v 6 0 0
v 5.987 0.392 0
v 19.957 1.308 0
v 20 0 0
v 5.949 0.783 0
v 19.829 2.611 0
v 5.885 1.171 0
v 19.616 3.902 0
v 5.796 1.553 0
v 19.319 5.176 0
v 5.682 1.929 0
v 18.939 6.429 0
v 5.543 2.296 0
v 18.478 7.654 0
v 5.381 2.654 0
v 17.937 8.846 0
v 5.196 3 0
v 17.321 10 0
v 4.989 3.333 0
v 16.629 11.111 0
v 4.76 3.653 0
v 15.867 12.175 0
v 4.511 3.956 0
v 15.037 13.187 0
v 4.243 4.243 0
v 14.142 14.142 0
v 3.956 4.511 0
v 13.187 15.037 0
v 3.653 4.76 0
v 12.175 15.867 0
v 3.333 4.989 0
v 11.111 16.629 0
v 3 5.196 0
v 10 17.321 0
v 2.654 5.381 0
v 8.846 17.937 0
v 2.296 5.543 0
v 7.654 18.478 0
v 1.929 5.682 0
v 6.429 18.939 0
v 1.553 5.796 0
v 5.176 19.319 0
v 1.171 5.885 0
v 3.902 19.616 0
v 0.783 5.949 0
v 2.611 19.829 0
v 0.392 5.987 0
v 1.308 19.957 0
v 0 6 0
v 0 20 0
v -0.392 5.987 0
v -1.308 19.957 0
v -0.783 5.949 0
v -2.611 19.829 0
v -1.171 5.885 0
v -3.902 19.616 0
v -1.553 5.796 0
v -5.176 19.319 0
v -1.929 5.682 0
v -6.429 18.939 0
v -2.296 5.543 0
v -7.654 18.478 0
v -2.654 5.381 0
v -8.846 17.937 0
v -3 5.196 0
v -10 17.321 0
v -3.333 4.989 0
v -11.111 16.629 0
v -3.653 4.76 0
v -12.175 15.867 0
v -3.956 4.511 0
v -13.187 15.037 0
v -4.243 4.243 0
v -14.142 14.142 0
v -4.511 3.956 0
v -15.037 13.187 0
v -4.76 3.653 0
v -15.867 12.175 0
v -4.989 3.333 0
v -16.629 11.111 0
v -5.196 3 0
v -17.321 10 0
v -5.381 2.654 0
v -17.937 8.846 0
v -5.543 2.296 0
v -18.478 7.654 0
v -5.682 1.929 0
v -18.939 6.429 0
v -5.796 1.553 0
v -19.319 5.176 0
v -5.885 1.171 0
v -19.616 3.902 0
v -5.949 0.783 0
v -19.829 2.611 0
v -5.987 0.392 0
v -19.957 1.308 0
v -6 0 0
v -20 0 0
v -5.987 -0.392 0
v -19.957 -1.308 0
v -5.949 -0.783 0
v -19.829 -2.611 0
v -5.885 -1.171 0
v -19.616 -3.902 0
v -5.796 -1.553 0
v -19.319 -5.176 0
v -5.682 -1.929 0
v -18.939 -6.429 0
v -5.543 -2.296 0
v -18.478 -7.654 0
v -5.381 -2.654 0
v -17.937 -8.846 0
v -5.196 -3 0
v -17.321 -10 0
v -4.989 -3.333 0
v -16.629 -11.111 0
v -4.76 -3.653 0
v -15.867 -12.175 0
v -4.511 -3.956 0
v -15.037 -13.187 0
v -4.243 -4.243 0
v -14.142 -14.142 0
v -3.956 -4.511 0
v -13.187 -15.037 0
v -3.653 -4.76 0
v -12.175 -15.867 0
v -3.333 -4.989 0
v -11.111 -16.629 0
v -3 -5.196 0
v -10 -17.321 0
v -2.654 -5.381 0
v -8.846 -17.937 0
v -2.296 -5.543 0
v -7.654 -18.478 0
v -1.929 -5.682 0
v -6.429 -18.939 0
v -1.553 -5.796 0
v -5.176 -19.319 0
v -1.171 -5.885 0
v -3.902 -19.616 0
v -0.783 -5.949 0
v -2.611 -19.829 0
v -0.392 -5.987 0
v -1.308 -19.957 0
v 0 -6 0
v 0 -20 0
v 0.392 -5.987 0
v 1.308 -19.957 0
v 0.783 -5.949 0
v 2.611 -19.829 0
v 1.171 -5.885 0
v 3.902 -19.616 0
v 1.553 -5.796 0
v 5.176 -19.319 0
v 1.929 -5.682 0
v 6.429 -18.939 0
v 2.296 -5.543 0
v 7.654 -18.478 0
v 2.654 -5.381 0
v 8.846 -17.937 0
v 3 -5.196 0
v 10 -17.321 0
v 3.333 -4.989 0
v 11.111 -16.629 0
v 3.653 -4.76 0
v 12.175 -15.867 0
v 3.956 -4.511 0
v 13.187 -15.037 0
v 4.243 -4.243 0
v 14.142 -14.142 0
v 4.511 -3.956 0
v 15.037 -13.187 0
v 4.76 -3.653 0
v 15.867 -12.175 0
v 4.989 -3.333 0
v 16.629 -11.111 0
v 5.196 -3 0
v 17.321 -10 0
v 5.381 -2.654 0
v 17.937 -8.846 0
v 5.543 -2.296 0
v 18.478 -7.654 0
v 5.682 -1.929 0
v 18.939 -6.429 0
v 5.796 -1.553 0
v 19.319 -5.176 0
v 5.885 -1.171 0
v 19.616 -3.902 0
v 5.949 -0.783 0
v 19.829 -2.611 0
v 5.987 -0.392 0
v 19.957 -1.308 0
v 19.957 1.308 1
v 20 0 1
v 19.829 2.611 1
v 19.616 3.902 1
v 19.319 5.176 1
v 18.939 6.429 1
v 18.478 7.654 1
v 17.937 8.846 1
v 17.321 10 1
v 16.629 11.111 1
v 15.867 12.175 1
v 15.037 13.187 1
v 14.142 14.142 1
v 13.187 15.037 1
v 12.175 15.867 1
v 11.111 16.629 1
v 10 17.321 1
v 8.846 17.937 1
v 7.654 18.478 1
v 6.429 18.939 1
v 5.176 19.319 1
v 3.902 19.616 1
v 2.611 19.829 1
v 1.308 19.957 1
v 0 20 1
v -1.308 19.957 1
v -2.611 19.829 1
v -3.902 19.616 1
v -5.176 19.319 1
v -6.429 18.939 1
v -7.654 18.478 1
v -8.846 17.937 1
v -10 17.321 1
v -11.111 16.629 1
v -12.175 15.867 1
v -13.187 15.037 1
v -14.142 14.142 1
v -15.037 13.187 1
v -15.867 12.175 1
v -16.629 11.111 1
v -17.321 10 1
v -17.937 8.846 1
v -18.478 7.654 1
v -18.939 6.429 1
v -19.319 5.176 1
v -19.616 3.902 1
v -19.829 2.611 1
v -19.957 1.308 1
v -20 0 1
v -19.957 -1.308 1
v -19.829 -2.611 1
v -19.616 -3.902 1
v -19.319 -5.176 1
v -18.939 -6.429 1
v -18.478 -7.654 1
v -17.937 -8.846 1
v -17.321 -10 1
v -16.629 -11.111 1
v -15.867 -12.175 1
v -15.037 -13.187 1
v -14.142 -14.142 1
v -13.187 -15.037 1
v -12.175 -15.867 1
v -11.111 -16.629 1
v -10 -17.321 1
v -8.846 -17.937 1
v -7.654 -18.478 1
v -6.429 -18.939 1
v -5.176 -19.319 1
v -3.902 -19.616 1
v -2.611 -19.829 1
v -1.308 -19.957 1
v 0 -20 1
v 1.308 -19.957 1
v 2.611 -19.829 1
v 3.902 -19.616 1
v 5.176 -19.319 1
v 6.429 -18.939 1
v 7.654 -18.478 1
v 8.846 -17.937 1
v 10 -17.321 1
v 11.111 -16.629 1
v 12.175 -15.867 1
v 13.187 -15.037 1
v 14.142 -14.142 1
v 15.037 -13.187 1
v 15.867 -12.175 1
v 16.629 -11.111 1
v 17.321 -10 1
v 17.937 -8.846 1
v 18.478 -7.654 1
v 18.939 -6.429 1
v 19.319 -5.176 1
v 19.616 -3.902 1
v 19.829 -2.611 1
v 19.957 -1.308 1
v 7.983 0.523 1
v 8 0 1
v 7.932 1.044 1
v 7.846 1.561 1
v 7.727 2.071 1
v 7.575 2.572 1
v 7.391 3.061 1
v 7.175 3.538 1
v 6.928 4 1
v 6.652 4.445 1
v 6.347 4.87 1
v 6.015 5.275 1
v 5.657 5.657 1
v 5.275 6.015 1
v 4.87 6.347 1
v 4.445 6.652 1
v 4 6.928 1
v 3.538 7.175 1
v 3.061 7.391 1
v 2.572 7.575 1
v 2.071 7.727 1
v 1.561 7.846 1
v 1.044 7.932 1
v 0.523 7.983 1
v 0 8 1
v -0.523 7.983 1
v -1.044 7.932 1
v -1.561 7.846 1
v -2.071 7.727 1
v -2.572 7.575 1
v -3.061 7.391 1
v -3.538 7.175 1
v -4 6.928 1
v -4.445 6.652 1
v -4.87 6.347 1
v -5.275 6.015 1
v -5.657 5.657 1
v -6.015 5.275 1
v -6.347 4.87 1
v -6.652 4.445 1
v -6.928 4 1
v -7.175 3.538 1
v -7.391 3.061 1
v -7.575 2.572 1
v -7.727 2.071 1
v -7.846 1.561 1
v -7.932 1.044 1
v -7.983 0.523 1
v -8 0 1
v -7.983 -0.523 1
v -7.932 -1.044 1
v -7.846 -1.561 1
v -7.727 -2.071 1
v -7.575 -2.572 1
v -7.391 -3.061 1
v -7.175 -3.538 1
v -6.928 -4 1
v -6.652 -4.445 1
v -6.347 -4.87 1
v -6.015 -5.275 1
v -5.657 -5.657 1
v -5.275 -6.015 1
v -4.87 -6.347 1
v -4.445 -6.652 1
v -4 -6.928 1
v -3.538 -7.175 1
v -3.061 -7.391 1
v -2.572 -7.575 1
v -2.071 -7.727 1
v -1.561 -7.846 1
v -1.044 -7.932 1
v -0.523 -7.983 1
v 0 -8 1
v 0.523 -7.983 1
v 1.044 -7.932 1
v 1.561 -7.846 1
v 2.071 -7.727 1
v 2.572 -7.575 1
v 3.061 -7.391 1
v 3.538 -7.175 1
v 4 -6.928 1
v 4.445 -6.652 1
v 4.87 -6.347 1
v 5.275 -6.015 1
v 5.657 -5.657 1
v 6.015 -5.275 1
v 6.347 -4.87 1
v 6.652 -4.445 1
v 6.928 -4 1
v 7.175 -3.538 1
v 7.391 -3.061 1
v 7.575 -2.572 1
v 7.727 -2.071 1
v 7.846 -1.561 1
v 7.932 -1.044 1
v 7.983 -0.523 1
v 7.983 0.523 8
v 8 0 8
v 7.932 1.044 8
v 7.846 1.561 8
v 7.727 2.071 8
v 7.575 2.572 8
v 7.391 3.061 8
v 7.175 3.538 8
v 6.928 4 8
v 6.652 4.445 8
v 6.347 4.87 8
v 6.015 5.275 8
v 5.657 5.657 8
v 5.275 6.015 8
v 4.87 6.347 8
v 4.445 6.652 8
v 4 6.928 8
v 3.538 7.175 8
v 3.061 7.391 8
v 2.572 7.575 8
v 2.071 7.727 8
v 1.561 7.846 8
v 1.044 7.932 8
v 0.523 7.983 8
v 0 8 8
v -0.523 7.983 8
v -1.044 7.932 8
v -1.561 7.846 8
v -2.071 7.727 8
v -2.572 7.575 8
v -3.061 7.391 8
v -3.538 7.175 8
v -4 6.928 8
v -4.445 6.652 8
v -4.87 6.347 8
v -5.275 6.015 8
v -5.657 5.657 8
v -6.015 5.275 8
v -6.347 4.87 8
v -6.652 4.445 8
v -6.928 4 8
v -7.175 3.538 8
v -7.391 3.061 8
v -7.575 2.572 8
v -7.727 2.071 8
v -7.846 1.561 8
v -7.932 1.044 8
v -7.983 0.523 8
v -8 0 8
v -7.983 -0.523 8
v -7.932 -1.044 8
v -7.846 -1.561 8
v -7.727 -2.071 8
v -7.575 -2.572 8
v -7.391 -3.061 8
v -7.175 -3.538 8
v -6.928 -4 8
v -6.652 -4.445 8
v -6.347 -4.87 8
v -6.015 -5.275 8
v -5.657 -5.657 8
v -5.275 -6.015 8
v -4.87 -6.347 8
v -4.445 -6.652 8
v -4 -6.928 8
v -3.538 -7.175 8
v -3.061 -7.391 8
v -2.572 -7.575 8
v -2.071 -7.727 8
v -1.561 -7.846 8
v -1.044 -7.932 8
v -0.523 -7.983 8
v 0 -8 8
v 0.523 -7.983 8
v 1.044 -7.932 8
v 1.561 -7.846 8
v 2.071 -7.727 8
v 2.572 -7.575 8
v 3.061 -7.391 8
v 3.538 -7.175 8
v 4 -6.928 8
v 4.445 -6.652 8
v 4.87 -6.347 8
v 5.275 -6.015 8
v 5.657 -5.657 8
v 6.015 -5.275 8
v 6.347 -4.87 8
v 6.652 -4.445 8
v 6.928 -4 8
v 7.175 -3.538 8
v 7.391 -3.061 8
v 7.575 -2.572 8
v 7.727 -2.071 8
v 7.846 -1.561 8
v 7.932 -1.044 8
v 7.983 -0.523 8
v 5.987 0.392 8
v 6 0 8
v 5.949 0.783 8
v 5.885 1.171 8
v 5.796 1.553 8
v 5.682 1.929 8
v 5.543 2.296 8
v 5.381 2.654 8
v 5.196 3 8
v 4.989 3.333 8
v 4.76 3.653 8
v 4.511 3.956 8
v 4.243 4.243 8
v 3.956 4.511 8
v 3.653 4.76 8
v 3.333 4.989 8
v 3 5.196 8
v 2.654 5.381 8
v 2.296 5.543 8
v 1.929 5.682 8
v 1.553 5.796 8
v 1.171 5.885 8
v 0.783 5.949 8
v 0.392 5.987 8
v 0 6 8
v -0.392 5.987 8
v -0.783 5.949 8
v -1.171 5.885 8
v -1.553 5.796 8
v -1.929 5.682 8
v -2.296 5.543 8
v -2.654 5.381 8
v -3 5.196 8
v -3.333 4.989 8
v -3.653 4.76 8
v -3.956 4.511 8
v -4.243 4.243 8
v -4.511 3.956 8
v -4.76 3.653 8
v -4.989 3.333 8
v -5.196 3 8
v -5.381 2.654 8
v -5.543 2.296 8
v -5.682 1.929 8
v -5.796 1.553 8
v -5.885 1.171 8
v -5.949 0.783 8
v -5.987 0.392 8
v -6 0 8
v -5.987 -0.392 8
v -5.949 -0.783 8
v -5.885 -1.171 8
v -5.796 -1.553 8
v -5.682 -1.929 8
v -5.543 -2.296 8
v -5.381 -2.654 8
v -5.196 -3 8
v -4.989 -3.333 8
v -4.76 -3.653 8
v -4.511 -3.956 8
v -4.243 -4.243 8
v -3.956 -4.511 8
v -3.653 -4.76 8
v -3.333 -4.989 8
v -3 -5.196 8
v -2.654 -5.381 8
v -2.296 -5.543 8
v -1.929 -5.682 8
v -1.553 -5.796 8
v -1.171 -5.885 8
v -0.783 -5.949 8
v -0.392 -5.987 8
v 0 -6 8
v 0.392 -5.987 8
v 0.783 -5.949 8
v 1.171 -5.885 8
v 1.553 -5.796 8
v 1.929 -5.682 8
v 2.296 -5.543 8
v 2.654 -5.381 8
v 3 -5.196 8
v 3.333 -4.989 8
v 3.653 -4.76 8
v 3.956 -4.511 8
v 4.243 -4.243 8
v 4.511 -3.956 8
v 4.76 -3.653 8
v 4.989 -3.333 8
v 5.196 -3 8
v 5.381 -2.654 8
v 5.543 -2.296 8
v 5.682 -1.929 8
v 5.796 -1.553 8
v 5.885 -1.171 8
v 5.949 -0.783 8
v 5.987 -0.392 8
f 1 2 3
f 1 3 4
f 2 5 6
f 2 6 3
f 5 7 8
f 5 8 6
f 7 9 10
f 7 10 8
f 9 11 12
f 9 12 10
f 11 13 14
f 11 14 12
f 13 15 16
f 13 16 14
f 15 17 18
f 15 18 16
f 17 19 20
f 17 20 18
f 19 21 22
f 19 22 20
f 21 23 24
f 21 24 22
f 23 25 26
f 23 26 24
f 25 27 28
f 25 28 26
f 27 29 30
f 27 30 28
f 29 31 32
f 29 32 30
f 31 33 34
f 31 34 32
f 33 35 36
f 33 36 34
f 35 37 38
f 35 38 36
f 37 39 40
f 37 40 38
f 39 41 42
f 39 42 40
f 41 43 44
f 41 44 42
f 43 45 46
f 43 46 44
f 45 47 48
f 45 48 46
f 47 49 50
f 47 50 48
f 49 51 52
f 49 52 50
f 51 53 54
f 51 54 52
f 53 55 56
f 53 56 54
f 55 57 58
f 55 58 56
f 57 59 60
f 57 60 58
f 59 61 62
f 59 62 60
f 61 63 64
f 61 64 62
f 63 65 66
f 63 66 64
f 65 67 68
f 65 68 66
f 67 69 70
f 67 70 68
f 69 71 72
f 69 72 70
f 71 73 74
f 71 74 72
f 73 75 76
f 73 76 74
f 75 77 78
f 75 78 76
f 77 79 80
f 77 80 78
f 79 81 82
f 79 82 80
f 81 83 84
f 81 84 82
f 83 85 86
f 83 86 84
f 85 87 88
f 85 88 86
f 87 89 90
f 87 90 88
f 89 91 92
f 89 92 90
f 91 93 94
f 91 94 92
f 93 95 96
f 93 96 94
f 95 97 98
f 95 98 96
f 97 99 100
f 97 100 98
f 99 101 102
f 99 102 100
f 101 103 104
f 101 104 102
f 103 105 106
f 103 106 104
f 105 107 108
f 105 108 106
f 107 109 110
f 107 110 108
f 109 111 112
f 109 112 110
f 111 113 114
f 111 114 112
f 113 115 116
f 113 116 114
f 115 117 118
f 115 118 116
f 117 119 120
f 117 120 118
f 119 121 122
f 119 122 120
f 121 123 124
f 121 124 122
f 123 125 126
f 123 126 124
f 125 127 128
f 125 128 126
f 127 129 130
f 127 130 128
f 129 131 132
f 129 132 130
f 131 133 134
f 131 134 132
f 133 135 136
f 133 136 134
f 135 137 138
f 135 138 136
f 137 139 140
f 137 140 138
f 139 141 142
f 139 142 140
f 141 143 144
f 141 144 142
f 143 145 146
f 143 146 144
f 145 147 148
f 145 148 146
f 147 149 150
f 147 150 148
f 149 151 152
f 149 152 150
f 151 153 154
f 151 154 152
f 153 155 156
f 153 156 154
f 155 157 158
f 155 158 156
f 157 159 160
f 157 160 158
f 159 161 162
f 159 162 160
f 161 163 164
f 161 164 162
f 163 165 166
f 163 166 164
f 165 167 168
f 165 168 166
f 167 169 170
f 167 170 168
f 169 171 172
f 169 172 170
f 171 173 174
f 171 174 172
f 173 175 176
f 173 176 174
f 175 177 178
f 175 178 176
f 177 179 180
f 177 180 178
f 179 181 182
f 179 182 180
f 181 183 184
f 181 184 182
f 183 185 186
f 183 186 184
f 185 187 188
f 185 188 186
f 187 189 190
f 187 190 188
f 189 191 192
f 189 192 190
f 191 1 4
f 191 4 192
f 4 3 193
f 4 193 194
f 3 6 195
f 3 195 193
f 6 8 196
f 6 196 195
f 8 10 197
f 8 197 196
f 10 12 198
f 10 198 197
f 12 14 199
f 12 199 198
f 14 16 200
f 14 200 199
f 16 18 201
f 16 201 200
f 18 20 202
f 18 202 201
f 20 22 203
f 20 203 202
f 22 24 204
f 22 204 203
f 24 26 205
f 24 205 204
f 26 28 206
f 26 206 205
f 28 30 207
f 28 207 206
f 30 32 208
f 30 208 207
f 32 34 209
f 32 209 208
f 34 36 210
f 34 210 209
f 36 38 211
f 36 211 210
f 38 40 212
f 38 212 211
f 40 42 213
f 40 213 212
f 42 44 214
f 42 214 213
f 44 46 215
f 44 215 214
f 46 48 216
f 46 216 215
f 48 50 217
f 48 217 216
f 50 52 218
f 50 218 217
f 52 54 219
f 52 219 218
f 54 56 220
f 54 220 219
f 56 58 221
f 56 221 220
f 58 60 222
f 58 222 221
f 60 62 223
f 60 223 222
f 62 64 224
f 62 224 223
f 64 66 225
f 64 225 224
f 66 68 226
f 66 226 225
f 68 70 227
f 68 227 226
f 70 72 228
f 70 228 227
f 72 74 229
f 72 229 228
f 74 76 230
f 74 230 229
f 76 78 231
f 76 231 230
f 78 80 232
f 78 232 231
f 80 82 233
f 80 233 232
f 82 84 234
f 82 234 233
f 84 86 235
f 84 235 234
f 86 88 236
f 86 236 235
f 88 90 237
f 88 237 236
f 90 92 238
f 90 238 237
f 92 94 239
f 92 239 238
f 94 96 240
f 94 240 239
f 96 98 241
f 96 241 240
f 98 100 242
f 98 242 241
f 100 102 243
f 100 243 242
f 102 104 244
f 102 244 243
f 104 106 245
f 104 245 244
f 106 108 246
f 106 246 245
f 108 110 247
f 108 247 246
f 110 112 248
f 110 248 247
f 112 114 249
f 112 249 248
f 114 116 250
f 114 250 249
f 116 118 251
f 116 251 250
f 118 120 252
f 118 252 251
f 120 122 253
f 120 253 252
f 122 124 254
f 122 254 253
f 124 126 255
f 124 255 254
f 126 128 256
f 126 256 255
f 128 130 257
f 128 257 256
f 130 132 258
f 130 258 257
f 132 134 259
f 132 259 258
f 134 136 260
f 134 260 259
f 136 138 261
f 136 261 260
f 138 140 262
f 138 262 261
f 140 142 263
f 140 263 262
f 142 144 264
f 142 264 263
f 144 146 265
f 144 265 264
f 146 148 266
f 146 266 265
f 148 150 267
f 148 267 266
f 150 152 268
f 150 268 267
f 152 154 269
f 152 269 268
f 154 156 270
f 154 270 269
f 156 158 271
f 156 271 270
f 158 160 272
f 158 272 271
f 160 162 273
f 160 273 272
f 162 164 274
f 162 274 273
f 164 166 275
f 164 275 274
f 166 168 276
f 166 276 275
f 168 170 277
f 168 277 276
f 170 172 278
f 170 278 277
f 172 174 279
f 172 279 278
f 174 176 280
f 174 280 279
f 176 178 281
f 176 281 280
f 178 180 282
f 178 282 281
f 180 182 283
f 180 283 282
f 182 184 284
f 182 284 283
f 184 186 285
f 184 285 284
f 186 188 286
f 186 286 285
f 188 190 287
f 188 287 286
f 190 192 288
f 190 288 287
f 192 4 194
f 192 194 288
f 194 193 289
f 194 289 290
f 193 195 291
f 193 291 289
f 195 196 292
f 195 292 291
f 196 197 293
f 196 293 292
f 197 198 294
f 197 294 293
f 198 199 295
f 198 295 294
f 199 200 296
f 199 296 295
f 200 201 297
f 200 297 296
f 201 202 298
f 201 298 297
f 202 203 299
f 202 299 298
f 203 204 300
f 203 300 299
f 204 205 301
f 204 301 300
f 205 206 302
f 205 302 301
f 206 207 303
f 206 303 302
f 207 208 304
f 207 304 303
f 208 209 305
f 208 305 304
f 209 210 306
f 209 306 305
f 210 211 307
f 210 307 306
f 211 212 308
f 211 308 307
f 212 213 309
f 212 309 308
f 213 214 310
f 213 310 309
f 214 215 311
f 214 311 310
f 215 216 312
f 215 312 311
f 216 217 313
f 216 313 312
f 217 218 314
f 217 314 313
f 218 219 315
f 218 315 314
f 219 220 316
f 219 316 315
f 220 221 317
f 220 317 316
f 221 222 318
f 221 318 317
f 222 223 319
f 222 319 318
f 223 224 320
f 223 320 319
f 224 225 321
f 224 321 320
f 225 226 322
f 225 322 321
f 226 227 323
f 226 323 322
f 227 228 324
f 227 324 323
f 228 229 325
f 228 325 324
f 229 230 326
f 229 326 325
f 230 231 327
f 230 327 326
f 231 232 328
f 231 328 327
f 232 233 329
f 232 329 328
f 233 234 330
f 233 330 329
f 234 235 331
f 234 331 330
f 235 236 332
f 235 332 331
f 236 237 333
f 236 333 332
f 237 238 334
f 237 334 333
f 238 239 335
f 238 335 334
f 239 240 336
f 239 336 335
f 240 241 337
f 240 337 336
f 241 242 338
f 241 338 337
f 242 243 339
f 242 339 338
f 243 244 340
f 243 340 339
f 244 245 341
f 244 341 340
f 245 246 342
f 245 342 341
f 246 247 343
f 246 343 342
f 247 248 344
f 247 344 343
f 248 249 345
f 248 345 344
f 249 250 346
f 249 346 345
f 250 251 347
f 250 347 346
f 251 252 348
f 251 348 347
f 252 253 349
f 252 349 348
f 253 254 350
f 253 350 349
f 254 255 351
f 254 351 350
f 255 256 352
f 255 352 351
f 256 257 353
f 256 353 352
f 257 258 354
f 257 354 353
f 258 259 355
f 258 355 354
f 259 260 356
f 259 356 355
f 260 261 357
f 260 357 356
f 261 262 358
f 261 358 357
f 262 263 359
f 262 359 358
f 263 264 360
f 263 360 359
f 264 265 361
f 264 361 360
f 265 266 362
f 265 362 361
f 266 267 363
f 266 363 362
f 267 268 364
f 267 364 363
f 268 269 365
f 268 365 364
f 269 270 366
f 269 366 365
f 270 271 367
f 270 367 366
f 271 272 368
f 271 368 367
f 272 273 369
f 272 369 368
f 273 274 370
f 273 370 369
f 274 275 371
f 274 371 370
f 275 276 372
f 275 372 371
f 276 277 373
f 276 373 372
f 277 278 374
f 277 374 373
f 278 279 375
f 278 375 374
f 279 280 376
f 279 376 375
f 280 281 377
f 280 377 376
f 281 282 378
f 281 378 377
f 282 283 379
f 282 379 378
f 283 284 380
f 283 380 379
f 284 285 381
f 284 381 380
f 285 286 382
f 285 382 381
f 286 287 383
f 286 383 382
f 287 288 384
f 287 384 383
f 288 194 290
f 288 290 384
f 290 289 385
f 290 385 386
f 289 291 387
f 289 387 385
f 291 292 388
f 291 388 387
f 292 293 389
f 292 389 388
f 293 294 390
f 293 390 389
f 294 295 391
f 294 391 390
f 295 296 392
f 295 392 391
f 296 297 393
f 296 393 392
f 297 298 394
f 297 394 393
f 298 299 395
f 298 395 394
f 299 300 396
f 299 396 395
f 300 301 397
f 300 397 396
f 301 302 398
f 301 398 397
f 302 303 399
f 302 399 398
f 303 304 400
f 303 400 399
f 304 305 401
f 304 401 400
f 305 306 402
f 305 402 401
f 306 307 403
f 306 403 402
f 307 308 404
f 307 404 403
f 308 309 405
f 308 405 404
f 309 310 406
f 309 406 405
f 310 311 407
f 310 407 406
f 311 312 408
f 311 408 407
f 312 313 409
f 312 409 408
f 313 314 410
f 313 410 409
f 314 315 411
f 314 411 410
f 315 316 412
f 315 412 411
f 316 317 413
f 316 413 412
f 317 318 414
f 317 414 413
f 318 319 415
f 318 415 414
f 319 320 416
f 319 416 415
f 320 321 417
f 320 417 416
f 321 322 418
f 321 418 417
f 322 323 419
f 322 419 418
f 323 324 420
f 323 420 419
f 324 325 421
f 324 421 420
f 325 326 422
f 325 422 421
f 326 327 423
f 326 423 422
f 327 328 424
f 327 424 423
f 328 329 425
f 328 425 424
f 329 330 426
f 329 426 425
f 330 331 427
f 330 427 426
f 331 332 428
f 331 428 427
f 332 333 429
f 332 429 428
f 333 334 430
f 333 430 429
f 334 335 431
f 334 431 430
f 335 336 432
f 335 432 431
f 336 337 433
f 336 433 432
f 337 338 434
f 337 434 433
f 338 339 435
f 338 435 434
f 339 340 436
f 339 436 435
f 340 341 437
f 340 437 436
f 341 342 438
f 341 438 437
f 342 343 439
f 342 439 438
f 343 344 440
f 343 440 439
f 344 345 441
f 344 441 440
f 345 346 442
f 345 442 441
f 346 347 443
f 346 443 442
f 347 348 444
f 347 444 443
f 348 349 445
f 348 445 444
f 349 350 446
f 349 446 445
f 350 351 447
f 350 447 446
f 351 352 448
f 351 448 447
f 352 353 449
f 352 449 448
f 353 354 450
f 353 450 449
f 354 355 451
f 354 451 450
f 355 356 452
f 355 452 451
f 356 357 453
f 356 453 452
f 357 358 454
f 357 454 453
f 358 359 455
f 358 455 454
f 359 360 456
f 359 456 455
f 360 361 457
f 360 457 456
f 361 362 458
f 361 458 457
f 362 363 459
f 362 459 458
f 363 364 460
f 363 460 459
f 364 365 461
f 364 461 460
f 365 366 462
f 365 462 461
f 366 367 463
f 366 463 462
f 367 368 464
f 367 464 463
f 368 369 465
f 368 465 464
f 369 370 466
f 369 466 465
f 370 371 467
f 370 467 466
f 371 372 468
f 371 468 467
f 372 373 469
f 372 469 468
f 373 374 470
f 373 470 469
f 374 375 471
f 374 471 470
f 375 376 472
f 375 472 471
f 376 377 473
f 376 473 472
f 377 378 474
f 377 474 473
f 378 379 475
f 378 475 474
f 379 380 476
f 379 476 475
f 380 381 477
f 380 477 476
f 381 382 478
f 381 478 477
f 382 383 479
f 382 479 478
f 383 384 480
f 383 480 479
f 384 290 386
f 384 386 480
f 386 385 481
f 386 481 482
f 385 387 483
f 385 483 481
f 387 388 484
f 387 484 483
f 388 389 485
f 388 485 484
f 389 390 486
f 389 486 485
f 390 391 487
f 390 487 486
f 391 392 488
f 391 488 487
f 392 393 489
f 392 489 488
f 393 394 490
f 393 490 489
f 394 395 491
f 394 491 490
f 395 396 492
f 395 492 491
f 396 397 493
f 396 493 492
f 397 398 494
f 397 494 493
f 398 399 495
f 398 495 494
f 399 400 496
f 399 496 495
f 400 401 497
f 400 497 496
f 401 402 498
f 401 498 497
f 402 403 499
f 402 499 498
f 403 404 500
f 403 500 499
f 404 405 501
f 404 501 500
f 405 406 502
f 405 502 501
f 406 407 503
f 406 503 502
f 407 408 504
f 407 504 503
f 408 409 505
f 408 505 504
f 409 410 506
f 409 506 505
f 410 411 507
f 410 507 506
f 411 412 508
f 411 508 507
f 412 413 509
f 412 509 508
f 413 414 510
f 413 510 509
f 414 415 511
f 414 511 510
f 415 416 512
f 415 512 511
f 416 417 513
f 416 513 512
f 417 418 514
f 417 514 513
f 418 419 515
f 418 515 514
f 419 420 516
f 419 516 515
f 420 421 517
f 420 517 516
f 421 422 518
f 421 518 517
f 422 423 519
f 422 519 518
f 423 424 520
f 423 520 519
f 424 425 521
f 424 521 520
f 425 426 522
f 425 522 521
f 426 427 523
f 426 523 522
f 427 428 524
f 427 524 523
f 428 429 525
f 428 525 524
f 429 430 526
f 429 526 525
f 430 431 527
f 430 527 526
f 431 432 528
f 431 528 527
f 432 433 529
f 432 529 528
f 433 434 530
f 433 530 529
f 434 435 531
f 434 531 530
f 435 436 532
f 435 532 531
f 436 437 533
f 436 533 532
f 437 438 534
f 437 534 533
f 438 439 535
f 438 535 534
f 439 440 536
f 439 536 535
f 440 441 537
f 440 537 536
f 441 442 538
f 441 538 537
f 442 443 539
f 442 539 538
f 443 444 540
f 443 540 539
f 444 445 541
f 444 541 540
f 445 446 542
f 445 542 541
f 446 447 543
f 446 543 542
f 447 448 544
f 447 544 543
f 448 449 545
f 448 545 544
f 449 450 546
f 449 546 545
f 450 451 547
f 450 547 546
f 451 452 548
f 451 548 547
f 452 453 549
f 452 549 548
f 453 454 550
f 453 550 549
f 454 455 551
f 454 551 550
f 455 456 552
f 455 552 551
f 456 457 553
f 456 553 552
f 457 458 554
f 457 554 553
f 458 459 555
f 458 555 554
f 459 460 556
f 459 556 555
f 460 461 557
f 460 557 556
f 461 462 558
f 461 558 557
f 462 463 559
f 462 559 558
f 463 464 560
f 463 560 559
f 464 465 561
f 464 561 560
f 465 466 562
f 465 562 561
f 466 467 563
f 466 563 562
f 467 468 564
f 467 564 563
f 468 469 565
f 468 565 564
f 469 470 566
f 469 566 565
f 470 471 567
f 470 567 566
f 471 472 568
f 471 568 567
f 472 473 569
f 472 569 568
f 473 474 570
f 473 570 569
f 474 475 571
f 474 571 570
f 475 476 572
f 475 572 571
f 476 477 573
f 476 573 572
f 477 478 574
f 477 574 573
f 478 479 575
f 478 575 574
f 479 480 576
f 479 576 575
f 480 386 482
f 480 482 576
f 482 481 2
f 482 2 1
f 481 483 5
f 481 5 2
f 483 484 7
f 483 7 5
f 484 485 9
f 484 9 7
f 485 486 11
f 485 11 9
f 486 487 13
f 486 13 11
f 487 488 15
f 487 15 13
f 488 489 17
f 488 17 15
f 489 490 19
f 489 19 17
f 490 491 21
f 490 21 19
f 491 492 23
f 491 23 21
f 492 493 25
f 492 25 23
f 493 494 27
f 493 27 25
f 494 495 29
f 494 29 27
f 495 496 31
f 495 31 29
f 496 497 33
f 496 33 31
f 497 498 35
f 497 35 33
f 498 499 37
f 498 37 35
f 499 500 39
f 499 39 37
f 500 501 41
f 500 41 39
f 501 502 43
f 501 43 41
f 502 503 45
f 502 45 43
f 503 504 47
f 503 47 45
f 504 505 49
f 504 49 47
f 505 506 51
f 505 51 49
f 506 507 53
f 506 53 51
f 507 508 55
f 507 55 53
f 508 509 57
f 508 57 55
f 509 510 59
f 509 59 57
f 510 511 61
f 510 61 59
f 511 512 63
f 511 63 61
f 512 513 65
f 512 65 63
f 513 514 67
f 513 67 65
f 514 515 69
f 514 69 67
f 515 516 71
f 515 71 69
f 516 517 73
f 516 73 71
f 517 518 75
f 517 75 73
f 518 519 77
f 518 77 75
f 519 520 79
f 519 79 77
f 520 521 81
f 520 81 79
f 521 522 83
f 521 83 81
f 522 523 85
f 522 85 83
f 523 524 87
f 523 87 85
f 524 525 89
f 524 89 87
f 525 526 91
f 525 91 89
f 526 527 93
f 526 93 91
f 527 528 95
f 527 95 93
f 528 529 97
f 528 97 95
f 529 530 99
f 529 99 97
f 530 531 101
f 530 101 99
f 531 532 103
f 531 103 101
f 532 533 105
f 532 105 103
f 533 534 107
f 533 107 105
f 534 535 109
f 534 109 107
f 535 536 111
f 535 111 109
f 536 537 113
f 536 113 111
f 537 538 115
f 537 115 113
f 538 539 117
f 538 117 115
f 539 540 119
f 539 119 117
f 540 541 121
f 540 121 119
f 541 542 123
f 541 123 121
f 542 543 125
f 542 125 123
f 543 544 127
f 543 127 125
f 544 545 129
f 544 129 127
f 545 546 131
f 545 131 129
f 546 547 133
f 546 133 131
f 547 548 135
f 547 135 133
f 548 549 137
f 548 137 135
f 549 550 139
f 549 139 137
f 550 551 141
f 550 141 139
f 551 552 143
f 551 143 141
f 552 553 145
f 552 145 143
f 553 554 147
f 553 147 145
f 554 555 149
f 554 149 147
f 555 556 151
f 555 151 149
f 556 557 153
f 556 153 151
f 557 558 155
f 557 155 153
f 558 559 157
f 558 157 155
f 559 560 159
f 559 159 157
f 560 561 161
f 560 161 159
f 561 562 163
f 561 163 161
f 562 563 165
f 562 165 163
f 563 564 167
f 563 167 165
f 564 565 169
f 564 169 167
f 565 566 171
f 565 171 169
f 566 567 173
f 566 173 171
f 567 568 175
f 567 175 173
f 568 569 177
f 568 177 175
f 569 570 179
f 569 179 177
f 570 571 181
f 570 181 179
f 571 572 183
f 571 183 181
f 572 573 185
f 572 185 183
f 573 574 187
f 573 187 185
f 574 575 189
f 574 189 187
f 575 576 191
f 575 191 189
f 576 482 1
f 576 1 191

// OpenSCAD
// Original MechIntel educational model. CC0-1.0. Units: mm.
// Not a standardized or load-rated component.
$fn=96;
// Section points: [radius, height], mm. Edit to change the profile.
section=[[6, 0], [20, 0], [20, 1], [8, 1], [8, 8], [6, 8]];
rotate_extrude($fn=96) polygon(points=section);
